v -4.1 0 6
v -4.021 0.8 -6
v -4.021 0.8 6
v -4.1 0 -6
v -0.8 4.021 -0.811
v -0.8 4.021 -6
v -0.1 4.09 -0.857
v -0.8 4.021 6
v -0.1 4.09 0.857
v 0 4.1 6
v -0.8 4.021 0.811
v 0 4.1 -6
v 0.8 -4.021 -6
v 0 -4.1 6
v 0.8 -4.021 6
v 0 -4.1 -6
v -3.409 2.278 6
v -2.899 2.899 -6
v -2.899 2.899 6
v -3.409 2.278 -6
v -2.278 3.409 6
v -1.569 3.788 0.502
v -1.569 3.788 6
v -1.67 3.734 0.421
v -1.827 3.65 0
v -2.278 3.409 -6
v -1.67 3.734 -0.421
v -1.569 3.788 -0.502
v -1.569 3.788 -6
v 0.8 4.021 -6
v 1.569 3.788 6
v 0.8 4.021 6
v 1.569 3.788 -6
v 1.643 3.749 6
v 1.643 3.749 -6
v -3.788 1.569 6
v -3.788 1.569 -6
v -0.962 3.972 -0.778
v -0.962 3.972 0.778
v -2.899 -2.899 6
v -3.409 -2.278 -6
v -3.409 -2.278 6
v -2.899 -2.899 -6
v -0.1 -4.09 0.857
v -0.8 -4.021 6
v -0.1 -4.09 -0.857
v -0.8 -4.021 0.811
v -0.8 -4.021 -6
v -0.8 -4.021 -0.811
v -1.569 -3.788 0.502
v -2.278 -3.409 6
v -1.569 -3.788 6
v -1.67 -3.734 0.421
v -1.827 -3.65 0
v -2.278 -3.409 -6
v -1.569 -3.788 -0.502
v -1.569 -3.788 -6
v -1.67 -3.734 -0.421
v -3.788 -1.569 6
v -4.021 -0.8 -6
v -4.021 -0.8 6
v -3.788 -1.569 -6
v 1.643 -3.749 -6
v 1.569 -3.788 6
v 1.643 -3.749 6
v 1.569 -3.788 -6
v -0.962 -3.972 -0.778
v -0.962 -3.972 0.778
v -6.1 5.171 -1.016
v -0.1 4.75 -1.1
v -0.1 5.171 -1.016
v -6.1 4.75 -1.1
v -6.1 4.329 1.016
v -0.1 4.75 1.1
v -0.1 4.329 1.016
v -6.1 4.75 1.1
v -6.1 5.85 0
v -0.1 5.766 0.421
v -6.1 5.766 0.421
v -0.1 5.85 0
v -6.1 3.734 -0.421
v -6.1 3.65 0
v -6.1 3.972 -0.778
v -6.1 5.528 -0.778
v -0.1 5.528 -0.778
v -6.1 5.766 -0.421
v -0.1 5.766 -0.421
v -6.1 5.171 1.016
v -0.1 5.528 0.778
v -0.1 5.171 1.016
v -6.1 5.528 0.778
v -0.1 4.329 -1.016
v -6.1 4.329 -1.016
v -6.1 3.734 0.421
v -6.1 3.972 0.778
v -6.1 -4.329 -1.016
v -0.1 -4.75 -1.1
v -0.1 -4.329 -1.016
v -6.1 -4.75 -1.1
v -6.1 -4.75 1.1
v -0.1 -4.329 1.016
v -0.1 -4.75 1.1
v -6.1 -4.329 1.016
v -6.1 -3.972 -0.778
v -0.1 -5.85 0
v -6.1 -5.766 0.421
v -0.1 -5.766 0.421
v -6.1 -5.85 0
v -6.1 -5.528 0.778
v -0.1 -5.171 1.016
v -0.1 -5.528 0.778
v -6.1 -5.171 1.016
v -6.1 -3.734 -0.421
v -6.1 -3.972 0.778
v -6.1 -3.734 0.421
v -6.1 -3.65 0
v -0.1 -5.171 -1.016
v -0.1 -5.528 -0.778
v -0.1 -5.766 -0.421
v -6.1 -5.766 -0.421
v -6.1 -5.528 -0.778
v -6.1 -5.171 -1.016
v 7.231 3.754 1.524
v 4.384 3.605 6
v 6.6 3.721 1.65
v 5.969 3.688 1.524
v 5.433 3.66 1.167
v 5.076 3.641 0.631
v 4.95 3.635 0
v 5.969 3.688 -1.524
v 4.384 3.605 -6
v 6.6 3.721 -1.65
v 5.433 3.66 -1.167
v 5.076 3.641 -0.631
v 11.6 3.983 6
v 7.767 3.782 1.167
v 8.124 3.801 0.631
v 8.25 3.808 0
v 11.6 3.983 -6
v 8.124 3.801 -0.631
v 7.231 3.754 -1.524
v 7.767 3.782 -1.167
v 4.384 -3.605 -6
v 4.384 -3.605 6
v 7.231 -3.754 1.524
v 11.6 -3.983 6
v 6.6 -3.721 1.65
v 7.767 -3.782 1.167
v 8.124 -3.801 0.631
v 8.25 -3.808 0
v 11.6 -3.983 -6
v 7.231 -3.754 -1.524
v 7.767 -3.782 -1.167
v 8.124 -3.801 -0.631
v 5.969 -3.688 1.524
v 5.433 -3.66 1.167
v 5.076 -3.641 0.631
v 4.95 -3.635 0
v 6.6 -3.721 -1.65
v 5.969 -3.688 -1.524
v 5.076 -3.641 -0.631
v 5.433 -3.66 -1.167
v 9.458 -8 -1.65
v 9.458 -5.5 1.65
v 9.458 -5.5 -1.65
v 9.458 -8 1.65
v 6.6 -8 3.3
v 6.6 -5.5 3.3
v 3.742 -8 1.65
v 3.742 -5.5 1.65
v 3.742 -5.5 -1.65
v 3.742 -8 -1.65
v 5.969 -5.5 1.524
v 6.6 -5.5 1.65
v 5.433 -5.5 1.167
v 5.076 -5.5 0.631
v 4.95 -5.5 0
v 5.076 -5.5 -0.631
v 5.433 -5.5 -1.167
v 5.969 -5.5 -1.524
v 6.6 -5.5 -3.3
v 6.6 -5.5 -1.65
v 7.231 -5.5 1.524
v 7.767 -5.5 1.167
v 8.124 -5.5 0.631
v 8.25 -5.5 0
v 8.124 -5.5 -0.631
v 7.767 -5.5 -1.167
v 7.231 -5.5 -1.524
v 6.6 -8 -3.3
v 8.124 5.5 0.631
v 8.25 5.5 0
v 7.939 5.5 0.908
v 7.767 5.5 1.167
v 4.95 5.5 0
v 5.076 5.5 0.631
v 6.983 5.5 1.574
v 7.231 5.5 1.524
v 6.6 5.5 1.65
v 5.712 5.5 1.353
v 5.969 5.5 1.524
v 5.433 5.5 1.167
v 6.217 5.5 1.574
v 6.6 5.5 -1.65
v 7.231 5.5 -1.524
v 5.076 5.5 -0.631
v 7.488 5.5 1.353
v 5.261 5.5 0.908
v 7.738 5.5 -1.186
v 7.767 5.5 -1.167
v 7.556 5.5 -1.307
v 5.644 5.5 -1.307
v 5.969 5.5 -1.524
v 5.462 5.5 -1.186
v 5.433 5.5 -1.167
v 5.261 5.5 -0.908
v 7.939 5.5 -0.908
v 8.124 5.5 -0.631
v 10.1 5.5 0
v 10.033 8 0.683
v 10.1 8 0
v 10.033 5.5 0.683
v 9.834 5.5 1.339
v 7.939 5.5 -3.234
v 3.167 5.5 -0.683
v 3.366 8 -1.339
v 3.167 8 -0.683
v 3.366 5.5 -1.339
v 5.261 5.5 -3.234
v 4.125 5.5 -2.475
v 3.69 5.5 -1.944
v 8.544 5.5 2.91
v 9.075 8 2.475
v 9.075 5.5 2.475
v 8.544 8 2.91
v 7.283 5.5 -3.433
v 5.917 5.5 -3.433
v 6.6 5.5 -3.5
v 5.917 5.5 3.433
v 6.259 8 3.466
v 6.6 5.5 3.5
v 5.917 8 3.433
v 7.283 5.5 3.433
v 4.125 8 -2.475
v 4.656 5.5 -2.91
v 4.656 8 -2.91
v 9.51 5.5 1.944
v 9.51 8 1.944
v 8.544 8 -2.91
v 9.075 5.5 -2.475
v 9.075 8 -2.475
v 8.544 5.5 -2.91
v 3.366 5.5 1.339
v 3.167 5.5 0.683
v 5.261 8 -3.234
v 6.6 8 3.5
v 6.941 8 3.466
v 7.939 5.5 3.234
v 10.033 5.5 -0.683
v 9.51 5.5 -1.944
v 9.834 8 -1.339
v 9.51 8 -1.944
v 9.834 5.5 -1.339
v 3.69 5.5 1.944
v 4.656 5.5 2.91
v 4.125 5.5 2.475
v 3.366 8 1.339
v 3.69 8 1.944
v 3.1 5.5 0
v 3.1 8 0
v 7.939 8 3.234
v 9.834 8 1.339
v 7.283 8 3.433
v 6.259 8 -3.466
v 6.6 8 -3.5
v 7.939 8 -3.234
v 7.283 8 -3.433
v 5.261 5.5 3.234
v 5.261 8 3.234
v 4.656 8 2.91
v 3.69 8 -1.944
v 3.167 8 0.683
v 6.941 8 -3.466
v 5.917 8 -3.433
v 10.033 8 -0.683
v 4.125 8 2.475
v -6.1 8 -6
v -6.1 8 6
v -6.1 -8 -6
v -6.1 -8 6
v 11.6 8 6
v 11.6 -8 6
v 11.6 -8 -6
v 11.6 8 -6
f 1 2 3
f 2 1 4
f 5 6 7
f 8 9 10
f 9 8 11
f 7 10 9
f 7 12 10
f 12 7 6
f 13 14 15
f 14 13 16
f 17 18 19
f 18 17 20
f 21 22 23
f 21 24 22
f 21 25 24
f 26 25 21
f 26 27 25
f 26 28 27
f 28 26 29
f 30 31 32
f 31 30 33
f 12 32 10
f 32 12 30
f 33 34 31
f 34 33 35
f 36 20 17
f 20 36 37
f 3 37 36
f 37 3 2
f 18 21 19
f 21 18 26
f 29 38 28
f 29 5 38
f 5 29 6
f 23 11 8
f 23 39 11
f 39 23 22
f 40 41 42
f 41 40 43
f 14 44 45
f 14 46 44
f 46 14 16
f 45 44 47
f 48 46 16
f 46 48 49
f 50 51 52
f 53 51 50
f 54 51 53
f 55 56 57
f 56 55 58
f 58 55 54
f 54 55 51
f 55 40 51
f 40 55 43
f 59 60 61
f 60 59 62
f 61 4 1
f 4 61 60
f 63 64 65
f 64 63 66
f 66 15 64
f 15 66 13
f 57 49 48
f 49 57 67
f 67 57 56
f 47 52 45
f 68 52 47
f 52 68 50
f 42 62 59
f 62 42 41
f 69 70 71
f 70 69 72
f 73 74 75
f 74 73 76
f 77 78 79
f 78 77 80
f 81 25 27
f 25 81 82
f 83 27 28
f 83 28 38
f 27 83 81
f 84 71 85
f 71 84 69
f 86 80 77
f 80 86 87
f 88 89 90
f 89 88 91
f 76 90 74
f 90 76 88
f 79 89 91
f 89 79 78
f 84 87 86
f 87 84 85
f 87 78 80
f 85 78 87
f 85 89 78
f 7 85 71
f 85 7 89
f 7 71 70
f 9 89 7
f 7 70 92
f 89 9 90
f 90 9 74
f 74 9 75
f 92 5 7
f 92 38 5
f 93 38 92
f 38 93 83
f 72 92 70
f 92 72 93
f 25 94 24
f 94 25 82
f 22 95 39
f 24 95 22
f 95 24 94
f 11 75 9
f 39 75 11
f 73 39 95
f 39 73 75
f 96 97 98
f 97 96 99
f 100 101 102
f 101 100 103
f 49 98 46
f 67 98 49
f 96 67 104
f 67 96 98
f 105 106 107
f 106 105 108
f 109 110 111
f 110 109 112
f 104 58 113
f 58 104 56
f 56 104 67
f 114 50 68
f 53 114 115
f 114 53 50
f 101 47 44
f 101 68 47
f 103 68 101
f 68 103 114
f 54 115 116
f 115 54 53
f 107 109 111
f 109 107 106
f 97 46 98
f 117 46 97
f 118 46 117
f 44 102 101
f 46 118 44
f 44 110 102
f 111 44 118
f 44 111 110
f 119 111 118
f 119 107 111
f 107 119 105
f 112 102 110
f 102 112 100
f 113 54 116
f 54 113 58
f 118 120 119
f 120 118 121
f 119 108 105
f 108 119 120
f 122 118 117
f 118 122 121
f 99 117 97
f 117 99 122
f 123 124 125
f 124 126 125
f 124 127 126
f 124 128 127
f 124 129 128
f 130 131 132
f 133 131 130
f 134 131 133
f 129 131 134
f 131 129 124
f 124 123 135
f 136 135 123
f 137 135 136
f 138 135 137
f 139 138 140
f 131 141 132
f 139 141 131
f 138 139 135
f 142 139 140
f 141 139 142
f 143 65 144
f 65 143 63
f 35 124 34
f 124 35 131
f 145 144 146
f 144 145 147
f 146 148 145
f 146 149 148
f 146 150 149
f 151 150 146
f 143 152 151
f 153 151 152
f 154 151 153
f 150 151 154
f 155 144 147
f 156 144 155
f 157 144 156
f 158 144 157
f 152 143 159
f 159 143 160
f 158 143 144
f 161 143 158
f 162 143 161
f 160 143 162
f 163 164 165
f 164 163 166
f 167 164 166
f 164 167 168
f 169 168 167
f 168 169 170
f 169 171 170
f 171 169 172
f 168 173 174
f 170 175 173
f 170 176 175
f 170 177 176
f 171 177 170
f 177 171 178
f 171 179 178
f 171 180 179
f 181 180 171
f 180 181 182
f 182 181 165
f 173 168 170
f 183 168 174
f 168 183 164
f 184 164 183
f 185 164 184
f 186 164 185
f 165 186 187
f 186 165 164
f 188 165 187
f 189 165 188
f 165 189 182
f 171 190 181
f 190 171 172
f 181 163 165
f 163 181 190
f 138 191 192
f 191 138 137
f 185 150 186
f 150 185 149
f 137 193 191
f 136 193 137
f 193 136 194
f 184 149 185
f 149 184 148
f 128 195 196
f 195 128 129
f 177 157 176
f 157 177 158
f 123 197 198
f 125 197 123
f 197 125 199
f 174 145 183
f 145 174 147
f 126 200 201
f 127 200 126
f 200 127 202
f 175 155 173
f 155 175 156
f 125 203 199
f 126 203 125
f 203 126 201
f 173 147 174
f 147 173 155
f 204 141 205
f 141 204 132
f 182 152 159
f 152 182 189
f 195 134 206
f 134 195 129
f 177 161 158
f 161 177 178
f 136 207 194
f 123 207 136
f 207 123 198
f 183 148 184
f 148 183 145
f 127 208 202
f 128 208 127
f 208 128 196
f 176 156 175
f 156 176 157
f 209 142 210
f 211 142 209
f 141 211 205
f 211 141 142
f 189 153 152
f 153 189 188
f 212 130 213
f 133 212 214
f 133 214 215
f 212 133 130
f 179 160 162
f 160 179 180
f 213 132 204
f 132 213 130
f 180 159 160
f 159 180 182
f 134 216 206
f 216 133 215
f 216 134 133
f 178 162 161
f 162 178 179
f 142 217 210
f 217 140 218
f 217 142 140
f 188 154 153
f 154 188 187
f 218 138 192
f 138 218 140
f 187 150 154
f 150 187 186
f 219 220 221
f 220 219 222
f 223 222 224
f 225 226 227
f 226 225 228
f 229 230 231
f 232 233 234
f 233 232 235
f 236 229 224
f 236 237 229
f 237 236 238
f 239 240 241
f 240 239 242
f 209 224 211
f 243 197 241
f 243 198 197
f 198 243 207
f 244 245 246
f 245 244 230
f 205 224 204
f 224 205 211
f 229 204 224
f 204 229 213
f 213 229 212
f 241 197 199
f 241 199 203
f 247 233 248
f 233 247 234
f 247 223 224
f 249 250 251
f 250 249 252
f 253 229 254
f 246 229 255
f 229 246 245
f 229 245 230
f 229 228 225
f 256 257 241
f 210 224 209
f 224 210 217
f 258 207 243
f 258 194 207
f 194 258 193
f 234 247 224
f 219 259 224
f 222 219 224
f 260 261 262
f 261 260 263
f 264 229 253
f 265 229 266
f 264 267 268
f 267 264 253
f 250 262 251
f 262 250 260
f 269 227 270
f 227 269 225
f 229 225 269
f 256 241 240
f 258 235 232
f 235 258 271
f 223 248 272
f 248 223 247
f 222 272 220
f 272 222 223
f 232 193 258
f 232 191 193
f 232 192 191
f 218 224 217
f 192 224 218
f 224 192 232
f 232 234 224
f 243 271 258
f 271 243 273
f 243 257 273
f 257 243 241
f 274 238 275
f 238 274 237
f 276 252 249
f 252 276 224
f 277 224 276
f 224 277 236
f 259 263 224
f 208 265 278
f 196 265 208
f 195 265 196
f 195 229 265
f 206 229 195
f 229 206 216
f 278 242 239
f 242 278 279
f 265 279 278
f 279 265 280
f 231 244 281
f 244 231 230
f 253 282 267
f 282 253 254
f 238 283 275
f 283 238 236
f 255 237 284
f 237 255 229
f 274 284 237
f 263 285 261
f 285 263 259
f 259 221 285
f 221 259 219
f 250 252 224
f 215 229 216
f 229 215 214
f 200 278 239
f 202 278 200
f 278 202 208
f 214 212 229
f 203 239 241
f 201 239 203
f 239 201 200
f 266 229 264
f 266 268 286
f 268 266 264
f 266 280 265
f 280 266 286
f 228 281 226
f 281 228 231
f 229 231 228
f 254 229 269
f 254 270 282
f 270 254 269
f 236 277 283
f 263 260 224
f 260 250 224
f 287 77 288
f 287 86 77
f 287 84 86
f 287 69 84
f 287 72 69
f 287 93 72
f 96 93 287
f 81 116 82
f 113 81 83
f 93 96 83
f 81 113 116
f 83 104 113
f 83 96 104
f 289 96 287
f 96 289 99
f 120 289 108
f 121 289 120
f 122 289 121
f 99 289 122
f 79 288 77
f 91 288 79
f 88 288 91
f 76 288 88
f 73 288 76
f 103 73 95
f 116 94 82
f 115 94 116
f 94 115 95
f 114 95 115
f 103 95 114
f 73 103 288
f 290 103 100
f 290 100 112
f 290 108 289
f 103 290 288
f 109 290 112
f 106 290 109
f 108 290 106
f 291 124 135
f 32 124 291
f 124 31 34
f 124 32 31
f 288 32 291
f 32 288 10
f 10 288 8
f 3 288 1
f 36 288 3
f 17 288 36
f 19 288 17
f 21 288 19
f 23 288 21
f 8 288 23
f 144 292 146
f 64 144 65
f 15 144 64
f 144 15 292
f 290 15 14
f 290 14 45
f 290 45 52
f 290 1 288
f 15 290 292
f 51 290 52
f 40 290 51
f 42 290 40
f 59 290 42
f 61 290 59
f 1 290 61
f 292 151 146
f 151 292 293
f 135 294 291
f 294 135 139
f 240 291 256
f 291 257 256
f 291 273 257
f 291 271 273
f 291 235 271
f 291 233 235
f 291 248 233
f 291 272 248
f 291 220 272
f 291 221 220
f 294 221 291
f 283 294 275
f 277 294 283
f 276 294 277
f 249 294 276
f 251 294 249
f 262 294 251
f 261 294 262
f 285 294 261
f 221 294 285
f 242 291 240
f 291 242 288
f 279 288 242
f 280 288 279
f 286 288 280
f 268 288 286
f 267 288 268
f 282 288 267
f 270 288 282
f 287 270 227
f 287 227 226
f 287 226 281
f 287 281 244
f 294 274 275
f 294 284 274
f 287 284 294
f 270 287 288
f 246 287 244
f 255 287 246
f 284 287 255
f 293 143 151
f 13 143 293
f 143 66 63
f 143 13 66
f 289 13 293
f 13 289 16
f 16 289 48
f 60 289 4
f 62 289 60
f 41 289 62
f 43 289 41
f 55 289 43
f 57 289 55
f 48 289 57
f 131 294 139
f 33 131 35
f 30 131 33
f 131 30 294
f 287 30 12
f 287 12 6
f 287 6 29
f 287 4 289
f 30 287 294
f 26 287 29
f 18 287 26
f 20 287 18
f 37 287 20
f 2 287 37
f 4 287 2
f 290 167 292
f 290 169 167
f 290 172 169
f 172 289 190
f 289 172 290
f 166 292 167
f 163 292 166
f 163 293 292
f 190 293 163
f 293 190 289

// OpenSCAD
// RebeliX
//
// endstop_X_Y-holder
// GNU GPL v3
// Martin Neruda <neruda@reprap4u.cz>
// http://www.reprap4u.cz

rod_dia = 8.2;
height = 12;
endstop_width = 16;

module endstop_base()
{
  translate([5.5/2,0,0]) cube([rod_dia + 9.5,endstop_width, height], center=true);
}


module endstop_cuts()
{
  nut_offset = 2.5;
  
  // Vyrez pro M8 tyc
  cylinder(r=rod_dia/2, h = 12 + 0.01, $fn = 32, center = true);
  
  // Otvory pro pridelani endstopu
  translate([-rod_dia/2,9.5/2,0]) rotate([0,90,0]) cylinder(r=2.2/2,h=8,$fn=16,center=true);
  translate([-rod_dia/2 ,-9.5/2,0]) rotate([0,90,0]) cylinder(r=2.2/2,h=8,$fn=16,center=true);

  // Vyrez pro nasazeni na M8 tyc
  translate([rod_dia,0.2,0]) rotate([0,0,3]) cube([2*rod_dia,rod_dia - 1,height + 0.01], center=true);
  translate([rod_dia,-0.2,0]) rotate([0,0,-3]) cube([2*rod_dia,rod_dia - 1,height + 0.01], center=true);
  
  // Vyrez pro M3
  translate([rod_dia/2 + nut_offset,-endstop_width/2,0]) rotate([90,30,0]) nut(6.6,2.5);
  translate([rod_dia/2 + nut_offset,0,0]) rotate([90,0,0]) cylinder(r=3.3/2,h=endstop_width + 0.01,$fn=16,center=true);
  translate([rod_dia/2 + nut_offset,endstop_width/2,0]) rotate([90,0,0]) cylinder(r=7/2,h=5,$fn=32,center=true);
}


module nut(nut_diameter=6.6,nut_height=3){
	cylinder(r=nut_diameter/2,h=2*nut_height,$fn=6,center=true);
}

module endstop()
{
  difference()
  {
	endstop_base();
    endstop_cuts();
  }
}

endstop();
